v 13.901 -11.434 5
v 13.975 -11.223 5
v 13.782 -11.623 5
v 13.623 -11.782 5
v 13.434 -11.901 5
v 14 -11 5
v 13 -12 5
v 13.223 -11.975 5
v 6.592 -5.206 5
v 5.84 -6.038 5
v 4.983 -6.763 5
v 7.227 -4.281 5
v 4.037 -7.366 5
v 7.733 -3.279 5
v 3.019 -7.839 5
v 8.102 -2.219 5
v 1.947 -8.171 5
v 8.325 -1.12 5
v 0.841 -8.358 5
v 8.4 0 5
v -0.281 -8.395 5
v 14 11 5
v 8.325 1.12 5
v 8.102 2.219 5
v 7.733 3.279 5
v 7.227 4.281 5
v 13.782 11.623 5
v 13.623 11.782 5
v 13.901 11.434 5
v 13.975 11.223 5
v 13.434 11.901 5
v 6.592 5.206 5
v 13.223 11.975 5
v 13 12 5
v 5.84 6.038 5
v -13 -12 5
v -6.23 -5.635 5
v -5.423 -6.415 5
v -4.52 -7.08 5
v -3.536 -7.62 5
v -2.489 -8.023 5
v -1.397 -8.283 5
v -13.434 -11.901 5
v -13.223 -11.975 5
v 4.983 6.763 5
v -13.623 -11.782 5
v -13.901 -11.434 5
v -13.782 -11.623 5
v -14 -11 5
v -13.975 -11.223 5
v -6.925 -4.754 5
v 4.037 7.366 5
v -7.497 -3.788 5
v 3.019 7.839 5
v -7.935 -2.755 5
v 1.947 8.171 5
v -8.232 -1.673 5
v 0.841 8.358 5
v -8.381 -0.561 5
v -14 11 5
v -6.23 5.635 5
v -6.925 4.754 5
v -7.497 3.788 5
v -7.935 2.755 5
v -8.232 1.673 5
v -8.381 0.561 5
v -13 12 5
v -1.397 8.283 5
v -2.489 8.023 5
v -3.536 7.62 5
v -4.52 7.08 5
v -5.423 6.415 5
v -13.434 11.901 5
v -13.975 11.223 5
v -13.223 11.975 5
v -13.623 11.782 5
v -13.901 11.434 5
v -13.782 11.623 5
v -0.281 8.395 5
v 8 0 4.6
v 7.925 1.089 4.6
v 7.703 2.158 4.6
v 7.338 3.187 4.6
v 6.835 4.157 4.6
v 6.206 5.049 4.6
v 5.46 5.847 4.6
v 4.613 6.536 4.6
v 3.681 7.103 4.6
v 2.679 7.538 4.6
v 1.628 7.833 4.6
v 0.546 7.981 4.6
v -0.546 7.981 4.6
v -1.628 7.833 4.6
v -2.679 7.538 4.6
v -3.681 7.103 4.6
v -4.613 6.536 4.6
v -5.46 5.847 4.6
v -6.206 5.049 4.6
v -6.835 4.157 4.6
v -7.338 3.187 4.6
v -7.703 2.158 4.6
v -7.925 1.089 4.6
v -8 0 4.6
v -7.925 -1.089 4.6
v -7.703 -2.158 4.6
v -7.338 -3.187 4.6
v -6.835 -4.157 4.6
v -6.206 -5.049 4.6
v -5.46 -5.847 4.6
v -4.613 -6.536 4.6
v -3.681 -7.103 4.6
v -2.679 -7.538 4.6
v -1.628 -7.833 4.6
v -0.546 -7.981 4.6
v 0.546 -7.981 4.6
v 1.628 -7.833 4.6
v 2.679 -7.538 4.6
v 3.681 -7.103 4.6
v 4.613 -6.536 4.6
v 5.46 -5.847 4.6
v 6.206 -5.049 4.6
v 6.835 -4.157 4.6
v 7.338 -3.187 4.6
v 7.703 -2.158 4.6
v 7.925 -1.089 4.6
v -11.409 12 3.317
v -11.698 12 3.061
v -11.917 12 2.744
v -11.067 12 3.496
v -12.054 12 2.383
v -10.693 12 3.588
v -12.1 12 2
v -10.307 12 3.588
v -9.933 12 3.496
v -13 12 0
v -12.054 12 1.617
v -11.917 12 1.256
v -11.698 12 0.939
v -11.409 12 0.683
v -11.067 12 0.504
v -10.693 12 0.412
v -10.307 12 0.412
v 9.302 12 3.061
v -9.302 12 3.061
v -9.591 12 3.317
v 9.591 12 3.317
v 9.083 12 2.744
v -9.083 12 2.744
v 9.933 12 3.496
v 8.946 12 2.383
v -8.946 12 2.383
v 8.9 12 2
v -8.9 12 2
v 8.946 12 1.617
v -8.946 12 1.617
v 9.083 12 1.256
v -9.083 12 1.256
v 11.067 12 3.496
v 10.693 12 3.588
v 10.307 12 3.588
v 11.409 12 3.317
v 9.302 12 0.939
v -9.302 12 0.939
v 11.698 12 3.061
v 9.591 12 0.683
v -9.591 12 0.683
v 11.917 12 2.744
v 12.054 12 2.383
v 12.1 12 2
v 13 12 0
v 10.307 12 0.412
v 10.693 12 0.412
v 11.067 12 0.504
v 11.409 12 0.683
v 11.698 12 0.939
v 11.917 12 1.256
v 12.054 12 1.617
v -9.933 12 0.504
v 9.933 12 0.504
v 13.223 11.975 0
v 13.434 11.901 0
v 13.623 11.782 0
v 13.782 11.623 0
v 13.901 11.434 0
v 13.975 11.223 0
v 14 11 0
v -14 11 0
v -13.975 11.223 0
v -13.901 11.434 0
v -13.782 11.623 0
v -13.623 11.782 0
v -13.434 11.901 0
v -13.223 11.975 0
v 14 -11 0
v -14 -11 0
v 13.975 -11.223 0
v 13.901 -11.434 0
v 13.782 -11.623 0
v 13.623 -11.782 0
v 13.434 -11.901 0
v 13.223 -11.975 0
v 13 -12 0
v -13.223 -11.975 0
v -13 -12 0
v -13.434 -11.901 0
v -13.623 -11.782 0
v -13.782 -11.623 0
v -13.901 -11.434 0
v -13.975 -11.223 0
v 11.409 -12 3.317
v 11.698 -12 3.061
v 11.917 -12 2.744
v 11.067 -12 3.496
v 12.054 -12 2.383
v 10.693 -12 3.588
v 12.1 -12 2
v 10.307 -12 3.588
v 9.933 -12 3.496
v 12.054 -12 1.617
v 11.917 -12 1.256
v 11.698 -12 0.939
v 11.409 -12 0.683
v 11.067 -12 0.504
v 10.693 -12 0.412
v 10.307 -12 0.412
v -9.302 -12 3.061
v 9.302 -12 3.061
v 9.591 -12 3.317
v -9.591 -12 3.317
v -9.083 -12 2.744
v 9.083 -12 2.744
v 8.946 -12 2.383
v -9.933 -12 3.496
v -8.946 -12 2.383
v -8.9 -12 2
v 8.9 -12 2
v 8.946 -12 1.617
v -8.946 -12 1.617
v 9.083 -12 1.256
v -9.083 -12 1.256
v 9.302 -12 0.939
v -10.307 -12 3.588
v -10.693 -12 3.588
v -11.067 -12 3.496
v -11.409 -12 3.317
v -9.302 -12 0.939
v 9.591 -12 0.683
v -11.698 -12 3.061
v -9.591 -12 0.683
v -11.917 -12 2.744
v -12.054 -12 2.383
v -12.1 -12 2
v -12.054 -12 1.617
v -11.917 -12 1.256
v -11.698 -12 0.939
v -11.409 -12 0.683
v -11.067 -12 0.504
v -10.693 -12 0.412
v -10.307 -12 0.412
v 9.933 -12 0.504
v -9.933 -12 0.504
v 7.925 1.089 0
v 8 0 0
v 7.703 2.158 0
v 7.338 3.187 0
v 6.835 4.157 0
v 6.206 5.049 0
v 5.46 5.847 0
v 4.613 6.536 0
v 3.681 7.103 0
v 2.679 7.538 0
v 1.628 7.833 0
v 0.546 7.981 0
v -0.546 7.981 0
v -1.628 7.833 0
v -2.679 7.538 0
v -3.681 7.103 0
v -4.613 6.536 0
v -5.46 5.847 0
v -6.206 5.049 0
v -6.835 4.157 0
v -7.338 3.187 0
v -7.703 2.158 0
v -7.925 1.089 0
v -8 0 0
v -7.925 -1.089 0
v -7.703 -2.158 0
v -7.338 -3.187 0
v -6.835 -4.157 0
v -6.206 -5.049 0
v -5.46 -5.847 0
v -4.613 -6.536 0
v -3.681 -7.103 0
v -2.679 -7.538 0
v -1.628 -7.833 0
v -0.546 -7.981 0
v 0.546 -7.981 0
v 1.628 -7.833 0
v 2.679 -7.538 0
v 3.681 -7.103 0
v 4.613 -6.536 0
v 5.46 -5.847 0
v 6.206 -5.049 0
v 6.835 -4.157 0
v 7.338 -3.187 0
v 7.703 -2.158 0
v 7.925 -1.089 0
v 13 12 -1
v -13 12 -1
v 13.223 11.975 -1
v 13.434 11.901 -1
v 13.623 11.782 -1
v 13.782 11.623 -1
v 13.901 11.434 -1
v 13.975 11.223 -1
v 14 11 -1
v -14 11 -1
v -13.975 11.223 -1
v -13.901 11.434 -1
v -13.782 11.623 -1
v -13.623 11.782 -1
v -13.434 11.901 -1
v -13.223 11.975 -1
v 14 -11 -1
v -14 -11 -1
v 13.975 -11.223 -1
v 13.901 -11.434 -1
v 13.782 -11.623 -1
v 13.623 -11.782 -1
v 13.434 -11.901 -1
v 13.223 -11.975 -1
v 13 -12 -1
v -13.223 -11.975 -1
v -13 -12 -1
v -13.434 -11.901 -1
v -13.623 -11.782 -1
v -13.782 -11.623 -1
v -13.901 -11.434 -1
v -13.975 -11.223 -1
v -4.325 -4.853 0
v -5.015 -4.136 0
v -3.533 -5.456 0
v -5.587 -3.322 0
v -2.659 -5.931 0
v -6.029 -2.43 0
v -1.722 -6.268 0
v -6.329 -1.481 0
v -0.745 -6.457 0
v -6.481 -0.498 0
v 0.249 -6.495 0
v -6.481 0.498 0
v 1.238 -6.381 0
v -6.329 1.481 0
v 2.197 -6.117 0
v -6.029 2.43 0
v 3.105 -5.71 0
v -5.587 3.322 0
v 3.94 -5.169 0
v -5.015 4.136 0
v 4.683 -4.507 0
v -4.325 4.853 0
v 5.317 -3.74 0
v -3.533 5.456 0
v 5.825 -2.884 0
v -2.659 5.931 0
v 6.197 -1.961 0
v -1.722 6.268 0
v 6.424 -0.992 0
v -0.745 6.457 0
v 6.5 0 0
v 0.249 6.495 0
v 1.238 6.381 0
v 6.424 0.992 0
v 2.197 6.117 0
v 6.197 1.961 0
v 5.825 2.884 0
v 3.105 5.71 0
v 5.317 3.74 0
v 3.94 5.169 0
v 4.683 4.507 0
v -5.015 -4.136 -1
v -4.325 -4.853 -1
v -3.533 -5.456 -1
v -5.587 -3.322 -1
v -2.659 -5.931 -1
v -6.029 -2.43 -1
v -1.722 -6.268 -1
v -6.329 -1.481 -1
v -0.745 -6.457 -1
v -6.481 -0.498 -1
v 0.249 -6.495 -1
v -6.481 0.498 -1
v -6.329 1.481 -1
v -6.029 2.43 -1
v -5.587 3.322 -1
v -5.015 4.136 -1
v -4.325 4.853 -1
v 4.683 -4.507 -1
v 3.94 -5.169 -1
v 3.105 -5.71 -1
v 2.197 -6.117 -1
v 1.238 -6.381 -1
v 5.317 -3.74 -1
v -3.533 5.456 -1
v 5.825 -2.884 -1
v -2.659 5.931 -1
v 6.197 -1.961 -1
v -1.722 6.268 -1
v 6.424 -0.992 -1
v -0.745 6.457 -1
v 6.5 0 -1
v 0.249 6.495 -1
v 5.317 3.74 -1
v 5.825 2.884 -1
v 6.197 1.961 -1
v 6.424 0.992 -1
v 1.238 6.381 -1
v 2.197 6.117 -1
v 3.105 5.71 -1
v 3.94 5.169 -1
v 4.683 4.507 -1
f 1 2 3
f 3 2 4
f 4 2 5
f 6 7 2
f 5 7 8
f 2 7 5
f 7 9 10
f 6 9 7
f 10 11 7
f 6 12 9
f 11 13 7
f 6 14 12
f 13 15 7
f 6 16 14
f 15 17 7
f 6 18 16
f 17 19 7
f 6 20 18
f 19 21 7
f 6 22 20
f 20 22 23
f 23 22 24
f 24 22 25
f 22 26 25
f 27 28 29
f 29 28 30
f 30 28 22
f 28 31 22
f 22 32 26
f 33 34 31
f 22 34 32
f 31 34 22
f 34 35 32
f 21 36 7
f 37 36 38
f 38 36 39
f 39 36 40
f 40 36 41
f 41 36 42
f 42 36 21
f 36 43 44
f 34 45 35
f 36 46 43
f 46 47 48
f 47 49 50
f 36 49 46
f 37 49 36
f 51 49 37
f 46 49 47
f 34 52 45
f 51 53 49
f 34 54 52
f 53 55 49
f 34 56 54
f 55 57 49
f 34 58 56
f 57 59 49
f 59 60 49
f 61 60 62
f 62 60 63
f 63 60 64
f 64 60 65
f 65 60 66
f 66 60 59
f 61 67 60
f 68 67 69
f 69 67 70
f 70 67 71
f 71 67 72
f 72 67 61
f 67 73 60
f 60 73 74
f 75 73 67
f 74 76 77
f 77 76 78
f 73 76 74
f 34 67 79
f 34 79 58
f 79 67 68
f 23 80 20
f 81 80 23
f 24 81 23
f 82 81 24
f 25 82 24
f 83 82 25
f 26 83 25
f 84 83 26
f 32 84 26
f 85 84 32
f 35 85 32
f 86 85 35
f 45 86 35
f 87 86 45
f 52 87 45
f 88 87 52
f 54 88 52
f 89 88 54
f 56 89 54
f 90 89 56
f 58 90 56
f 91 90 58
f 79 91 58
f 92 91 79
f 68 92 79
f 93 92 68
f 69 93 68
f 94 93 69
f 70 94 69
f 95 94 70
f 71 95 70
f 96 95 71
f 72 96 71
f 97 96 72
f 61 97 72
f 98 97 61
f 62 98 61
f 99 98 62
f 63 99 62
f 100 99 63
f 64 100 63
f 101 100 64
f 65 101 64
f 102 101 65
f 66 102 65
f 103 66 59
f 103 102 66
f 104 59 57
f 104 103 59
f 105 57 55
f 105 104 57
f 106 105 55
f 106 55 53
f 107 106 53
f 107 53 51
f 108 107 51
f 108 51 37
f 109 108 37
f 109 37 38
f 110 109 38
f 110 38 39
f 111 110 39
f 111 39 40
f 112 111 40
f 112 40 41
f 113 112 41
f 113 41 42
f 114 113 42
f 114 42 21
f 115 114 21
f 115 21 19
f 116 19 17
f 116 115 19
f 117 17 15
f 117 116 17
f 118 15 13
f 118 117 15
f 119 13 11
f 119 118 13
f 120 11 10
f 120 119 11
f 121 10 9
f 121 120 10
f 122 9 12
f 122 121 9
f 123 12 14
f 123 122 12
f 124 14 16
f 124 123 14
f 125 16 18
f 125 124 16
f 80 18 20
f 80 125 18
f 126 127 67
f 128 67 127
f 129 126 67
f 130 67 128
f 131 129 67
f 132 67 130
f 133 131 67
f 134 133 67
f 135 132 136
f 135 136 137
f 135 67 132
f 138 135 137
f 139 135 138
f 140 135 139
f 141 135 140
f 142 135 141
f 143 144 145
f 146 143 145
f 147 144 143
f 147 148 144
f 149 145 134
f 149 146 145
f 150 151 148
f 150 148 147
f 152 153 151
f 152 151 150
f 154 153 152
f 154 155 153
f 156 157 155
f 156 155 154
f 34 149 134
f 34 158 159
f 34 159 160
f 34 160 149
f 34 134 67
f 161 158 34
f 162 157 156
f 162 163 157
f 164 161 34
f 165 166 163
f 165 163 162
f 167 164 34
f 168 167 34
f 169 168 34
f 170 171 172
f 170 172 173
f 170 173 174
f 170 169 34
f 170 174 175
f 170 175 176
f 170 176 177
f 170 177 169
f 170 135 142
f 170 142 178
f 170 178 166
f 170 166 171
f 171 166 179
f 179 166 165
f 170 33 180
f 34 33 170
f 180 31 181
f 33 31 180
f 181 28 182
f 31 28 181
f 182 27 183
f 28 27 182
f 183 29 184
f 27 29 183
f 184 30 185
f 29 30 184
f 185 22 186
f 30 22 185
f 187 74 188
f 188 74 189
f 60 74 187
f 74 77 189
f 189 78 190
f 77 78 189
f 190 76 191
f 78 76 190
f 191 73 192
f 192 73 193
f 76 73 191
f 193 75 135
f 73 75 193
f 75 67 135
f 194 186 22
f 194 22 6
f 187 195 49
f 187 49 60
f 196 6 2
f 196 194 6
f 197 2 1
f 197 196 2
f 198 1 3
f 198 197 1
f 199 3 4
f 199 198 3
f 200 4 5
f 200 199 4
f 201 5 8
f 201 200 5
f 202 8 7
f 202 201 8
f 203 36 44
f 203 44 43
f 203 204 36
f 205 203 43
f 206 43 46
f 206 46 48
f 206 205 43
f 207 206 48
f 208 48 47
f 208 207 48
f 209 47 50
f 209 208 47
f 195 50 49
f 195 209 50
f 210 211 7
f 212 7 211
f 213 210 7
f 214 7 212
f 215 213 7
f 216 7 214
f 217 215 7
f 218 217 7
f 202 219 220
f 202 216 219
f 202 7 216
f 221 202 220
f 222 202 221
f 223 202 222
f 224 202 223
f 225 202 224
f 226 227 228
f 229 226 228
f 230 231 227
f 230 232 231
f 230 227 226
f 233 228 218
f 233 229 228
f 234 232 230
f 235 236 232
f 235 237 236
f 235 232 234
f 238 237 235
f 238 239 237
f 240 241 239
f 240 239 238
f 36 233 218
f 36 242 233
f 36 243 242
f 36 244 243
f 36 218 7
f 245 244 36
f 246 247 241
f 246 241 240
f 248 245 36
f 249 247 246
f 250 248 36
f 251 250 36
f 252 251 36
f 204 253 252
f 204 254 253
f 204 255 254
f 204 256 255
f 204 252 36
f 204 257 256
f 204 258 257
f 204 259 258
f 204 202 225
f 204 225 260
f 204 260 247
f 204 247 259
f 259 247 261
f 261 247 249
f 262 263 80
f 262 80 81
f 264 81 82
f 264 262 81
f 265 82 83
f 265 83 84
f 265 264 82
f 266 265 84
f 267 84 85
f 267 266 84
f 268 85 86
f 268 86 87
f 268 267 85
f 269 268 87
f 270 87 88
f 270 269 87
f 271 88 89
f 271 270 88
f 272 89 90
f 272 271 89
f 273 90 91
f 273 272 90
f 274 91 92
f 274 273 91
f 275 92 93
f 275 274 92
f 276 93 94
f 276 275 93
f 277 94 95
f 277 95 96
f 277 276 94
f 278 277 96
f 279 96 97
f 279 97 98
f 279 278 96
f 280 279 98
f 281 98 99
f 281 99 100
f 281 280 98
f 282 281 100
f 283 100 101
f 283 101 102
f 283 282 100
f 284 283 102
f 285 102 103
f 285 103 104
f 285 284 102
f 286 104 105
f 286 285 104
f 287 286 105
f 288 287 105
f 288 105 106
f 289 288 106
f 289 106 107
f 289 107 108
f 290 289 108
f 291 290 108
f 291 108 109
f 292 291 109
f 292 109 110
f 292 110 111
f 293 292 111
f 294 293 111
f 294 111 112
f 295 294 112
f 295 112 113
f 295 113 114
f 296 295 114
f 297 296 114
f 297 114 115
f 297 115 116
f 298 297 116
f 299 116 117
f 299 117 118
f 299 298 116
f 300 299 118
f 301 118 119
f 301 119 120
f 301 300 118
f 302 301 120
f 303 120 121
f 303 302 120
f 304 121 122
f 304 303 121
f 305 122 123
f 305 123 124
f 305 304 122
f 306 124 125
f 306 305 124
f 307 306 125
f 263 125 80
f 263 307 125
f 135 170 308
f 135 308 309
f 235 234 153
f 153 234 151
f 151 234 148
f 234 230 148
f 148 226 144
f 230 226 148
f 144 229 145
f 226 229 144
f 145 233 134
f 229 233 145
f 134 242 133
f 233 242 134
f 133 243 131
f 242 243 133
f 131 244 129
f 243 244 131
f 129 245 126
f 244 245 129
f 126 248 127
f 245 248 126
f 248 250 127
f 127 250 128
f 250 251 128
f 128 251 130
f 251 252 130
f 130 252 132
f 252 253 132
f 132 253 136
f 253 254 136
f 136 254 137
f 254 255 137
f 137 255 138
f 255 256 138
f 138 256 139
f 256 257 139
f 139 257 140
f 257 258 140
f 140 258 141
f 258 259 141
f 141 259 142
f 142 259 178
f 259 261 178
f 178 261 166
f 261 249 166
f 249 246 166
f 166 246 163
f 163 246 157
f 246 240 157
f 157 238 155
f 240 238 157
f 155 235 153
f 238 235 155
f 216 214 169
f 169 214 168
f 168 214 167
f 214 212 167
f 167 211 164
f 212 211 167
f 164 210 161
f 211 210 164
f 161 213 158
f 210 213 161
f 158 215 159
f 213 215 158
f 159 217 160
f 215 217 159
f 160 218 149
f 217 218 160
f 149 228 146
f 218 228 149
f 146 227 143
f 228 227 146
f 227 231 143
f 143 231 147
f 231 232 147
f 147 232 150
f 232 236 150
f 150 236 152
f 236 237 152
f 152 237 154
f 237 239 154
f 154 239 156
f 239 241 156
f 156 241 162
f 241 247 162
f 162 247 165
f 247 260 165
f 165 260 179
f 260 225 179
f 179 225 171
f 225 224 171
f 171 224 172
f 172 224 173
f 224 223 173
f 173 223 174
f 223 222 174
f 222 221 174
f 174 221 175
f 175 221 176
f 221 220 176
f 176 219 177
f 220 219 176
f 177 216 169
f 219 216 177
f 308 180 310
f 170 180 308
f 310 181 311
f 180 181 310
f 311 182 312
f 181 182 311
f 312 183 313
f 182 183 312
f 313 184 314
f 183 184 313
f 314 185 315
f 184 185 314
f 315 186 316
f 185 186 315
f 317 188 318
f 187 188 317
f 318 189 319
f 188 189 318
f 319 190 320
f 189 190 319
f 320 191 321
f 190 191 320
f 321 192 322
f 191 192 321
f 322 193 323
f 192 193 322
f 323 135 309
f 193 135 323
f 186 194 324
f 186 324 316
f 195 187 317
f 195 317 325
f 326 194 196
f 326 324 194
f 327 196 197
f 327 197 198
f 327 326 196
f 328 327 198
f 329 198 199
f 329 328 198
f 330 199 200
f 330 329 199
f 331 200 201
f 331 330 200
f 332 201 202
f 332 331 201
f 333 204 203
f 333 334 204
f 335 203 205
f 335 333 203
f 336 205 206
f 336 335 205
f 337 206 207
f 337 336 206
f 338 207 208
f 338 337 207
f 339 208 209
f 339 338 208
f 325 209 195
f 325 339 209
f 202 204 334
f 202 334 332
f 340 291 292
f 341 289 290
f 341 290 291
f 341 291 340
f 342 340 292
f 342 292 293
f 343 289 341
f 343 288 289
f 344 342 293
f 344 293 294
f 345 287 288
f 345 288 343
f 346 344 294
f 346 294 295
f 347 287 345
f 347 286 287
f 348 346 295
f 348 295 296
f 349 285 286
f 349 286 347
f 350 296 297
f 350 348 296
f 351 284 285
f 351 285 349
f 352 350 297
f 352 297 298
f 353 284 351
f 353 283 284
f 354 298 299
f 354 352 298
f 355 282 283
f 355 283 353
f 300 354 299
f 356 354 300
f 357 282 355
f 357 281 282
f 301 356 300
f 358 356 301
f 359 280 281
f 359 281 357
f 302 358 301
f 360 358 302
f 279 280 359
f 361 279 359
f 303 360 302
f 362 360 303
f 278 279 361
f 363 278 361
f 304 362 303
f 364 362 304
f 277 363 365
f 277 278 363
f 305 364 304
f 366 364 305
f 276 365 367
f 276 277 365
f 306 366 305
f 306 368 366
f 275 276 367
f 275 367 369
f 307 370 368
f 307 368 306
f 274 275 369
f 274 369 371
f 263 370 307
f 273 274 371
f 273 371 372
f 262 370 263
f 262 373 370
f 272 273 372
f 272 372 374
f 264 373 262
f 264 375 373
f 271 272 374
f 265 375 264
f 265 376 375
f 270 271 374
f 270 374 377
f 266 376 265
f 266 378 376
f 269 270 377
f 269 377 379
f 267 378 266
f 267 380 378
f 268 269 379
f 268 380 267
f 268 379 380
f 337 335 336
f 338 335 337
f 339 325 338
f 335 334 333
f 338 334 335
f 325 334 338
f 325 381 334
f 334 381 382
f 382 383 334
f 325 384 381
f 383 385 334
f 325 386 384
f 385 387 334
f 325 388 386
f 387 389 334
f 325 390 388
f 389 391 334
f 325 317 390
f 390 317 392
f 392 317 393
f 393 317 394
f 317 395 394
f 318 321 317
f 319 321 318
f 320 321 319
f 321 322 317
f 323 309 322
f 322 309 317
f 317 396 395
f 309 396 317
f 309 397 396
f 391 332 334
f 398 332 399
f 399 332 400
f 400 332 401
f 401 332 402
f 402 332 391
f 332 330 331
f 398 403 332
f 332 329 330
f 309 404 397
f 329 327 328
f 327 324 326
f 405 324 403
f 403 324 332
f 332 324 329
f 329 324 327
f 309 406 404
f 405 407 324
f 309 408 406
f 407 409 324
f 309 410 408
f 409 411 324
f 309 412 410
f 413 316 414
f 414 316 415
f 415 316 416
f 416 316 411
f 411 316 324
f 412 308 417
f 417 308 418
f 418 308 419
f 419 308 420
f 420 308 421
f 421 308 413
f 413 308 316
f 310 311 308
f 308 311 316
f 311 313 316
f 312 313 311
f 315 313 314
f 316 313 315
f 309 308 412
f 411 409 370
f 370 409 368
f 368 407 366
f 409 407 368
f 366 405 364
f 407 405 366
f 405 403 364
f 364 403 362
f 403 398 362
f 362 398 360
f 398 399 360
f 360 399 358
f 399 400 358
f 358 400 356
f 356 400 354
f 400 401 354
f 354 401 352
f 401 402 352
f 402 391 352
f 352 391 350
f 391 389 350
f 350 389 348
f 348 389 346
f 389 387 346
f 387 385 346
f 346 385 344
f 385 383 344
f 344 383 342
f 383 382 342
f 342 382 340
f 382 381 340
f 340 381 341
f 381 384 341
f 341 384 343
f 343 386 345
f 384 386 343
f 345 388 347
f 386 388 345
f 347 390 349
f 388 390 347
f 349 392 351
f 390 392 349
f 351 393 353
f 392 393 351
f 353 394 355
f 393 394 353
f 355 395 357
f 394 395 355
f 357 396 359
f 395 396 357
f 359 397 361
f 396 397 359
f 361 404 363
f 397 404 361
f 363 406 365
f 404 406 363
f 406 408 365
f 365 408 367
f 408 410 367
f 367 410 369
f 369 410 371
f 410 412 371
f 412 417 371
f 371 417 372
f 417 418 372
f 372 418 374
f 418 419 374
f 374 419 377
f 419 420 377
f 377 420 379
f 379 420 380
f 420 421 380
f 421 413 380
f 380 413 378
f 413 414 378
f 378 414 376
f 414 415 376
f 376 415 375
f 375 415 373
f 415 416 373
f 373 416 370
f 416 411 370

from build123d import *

# Parameters (mm, degrees)
SKETCH_W        = 28
SKETCH_H        = 24
SKETCH_R        = 8
PAD_DEPTH       = 5
SKETCH001_R     = 1.6
POCKET_DEPTH    = 24.001
SKETCH002_W     = 28
SKETCH002_H     = 24
PAD001_DEPTH    = 1
SKETCH003_R     = 6.5
POCKET001_DEPTH = 5
FILLET_R        = 1
FILLET001_R     = 1
FILLET002_R     = 1
FILLET003_R     = 1
CHAMFER_SIZE    = 0.4


with BuildPart() as part:
    # Sketch → Pad (new body)
    with BuildSketch(Plane.XY):
        Rectangle(SKETCH_W, SKETCH_H)
        Circle(SKETCH_R, mode=Mode.SUBTRACT)
    extrude(amount=PAD_DEPTH)

    # Sketch001 (on Face3 of Pad) → Pocket (cut, through all)
    with BuildSketch(Plane.XZ.offset(12)):
        with Locations((-10.5, 2)):
            Circle(SKETCH001_R)
        with Locations((10.5, 2)):
            Circle(SKETCH001_R)
    extrude(amount=-POCKET_DEPTH, mode=Mode.SUBTRACT)

    # Sketch002 (on Face3 of Pocket) → Pad001 (join)
    with BuildSketch(Plane(origin=(0, 0, 0), x_dir=(1, 0, 0), z_dir=(0, 0, -1))):
        Rectangle(SKETCH002_W, SKETCH002_H)
    extrude(amount=PAD001_DEPTH)

    # Sketch003 (on Face11 of Pad001) → Pocket001 (cut)
    with BuildSketch(Plane(origin=(0, 0, -1), x_dir=(1, 0, 0), z_dir=(0, 0, -1))):
        Circle(SKETCH003_R)
    extrude(amount=-POCKET001_DEPTH, mode=Mode.SUBTRACT)

    # Fillet
    fillet_edges = [part.edges().sort_by_distance(p)[0] for p in [
        (14, -12, -0.5),
        (14, -12, 2.5),
    ]]
    fillet(fillet_edges, radius=FILLET_R)

    # Fillet001
    fillet001_edges = [part.edges().sort_by_distance(p)[0] for p in [
        (-14, -12, -0.5),
        (-14, -12, 2.5),
    ]]
    fillet(fillet001_edges, radius=FILLET001_R)

    # Fillet002
    fillet002_edges = [part.edges().sort_by_distance(p)[0] for p in [
        (-14, 12, 2.5),
        (-14, 12, -0.5),
    ]]
    fillet(fillet002_edges, radius=FILLET002_R)

    # Fillet003
    fillet003_edges = [part.edges().sort_by_distance(p)[0] for p in [
        (14, 12, 2.5),
        (14, 12, -0.5),
    ]]
    fillet(fillet003_edges, radius=FILLET003_R)

    # Chamfer
    chamfer_edges = [part.edges().sort_by_distance(p)[0] for p in [
        (-8, 0, 5),
    ]]
    chamfer(chamfer_edges, length=CHAMFER_SIZE)


solid = part.part
